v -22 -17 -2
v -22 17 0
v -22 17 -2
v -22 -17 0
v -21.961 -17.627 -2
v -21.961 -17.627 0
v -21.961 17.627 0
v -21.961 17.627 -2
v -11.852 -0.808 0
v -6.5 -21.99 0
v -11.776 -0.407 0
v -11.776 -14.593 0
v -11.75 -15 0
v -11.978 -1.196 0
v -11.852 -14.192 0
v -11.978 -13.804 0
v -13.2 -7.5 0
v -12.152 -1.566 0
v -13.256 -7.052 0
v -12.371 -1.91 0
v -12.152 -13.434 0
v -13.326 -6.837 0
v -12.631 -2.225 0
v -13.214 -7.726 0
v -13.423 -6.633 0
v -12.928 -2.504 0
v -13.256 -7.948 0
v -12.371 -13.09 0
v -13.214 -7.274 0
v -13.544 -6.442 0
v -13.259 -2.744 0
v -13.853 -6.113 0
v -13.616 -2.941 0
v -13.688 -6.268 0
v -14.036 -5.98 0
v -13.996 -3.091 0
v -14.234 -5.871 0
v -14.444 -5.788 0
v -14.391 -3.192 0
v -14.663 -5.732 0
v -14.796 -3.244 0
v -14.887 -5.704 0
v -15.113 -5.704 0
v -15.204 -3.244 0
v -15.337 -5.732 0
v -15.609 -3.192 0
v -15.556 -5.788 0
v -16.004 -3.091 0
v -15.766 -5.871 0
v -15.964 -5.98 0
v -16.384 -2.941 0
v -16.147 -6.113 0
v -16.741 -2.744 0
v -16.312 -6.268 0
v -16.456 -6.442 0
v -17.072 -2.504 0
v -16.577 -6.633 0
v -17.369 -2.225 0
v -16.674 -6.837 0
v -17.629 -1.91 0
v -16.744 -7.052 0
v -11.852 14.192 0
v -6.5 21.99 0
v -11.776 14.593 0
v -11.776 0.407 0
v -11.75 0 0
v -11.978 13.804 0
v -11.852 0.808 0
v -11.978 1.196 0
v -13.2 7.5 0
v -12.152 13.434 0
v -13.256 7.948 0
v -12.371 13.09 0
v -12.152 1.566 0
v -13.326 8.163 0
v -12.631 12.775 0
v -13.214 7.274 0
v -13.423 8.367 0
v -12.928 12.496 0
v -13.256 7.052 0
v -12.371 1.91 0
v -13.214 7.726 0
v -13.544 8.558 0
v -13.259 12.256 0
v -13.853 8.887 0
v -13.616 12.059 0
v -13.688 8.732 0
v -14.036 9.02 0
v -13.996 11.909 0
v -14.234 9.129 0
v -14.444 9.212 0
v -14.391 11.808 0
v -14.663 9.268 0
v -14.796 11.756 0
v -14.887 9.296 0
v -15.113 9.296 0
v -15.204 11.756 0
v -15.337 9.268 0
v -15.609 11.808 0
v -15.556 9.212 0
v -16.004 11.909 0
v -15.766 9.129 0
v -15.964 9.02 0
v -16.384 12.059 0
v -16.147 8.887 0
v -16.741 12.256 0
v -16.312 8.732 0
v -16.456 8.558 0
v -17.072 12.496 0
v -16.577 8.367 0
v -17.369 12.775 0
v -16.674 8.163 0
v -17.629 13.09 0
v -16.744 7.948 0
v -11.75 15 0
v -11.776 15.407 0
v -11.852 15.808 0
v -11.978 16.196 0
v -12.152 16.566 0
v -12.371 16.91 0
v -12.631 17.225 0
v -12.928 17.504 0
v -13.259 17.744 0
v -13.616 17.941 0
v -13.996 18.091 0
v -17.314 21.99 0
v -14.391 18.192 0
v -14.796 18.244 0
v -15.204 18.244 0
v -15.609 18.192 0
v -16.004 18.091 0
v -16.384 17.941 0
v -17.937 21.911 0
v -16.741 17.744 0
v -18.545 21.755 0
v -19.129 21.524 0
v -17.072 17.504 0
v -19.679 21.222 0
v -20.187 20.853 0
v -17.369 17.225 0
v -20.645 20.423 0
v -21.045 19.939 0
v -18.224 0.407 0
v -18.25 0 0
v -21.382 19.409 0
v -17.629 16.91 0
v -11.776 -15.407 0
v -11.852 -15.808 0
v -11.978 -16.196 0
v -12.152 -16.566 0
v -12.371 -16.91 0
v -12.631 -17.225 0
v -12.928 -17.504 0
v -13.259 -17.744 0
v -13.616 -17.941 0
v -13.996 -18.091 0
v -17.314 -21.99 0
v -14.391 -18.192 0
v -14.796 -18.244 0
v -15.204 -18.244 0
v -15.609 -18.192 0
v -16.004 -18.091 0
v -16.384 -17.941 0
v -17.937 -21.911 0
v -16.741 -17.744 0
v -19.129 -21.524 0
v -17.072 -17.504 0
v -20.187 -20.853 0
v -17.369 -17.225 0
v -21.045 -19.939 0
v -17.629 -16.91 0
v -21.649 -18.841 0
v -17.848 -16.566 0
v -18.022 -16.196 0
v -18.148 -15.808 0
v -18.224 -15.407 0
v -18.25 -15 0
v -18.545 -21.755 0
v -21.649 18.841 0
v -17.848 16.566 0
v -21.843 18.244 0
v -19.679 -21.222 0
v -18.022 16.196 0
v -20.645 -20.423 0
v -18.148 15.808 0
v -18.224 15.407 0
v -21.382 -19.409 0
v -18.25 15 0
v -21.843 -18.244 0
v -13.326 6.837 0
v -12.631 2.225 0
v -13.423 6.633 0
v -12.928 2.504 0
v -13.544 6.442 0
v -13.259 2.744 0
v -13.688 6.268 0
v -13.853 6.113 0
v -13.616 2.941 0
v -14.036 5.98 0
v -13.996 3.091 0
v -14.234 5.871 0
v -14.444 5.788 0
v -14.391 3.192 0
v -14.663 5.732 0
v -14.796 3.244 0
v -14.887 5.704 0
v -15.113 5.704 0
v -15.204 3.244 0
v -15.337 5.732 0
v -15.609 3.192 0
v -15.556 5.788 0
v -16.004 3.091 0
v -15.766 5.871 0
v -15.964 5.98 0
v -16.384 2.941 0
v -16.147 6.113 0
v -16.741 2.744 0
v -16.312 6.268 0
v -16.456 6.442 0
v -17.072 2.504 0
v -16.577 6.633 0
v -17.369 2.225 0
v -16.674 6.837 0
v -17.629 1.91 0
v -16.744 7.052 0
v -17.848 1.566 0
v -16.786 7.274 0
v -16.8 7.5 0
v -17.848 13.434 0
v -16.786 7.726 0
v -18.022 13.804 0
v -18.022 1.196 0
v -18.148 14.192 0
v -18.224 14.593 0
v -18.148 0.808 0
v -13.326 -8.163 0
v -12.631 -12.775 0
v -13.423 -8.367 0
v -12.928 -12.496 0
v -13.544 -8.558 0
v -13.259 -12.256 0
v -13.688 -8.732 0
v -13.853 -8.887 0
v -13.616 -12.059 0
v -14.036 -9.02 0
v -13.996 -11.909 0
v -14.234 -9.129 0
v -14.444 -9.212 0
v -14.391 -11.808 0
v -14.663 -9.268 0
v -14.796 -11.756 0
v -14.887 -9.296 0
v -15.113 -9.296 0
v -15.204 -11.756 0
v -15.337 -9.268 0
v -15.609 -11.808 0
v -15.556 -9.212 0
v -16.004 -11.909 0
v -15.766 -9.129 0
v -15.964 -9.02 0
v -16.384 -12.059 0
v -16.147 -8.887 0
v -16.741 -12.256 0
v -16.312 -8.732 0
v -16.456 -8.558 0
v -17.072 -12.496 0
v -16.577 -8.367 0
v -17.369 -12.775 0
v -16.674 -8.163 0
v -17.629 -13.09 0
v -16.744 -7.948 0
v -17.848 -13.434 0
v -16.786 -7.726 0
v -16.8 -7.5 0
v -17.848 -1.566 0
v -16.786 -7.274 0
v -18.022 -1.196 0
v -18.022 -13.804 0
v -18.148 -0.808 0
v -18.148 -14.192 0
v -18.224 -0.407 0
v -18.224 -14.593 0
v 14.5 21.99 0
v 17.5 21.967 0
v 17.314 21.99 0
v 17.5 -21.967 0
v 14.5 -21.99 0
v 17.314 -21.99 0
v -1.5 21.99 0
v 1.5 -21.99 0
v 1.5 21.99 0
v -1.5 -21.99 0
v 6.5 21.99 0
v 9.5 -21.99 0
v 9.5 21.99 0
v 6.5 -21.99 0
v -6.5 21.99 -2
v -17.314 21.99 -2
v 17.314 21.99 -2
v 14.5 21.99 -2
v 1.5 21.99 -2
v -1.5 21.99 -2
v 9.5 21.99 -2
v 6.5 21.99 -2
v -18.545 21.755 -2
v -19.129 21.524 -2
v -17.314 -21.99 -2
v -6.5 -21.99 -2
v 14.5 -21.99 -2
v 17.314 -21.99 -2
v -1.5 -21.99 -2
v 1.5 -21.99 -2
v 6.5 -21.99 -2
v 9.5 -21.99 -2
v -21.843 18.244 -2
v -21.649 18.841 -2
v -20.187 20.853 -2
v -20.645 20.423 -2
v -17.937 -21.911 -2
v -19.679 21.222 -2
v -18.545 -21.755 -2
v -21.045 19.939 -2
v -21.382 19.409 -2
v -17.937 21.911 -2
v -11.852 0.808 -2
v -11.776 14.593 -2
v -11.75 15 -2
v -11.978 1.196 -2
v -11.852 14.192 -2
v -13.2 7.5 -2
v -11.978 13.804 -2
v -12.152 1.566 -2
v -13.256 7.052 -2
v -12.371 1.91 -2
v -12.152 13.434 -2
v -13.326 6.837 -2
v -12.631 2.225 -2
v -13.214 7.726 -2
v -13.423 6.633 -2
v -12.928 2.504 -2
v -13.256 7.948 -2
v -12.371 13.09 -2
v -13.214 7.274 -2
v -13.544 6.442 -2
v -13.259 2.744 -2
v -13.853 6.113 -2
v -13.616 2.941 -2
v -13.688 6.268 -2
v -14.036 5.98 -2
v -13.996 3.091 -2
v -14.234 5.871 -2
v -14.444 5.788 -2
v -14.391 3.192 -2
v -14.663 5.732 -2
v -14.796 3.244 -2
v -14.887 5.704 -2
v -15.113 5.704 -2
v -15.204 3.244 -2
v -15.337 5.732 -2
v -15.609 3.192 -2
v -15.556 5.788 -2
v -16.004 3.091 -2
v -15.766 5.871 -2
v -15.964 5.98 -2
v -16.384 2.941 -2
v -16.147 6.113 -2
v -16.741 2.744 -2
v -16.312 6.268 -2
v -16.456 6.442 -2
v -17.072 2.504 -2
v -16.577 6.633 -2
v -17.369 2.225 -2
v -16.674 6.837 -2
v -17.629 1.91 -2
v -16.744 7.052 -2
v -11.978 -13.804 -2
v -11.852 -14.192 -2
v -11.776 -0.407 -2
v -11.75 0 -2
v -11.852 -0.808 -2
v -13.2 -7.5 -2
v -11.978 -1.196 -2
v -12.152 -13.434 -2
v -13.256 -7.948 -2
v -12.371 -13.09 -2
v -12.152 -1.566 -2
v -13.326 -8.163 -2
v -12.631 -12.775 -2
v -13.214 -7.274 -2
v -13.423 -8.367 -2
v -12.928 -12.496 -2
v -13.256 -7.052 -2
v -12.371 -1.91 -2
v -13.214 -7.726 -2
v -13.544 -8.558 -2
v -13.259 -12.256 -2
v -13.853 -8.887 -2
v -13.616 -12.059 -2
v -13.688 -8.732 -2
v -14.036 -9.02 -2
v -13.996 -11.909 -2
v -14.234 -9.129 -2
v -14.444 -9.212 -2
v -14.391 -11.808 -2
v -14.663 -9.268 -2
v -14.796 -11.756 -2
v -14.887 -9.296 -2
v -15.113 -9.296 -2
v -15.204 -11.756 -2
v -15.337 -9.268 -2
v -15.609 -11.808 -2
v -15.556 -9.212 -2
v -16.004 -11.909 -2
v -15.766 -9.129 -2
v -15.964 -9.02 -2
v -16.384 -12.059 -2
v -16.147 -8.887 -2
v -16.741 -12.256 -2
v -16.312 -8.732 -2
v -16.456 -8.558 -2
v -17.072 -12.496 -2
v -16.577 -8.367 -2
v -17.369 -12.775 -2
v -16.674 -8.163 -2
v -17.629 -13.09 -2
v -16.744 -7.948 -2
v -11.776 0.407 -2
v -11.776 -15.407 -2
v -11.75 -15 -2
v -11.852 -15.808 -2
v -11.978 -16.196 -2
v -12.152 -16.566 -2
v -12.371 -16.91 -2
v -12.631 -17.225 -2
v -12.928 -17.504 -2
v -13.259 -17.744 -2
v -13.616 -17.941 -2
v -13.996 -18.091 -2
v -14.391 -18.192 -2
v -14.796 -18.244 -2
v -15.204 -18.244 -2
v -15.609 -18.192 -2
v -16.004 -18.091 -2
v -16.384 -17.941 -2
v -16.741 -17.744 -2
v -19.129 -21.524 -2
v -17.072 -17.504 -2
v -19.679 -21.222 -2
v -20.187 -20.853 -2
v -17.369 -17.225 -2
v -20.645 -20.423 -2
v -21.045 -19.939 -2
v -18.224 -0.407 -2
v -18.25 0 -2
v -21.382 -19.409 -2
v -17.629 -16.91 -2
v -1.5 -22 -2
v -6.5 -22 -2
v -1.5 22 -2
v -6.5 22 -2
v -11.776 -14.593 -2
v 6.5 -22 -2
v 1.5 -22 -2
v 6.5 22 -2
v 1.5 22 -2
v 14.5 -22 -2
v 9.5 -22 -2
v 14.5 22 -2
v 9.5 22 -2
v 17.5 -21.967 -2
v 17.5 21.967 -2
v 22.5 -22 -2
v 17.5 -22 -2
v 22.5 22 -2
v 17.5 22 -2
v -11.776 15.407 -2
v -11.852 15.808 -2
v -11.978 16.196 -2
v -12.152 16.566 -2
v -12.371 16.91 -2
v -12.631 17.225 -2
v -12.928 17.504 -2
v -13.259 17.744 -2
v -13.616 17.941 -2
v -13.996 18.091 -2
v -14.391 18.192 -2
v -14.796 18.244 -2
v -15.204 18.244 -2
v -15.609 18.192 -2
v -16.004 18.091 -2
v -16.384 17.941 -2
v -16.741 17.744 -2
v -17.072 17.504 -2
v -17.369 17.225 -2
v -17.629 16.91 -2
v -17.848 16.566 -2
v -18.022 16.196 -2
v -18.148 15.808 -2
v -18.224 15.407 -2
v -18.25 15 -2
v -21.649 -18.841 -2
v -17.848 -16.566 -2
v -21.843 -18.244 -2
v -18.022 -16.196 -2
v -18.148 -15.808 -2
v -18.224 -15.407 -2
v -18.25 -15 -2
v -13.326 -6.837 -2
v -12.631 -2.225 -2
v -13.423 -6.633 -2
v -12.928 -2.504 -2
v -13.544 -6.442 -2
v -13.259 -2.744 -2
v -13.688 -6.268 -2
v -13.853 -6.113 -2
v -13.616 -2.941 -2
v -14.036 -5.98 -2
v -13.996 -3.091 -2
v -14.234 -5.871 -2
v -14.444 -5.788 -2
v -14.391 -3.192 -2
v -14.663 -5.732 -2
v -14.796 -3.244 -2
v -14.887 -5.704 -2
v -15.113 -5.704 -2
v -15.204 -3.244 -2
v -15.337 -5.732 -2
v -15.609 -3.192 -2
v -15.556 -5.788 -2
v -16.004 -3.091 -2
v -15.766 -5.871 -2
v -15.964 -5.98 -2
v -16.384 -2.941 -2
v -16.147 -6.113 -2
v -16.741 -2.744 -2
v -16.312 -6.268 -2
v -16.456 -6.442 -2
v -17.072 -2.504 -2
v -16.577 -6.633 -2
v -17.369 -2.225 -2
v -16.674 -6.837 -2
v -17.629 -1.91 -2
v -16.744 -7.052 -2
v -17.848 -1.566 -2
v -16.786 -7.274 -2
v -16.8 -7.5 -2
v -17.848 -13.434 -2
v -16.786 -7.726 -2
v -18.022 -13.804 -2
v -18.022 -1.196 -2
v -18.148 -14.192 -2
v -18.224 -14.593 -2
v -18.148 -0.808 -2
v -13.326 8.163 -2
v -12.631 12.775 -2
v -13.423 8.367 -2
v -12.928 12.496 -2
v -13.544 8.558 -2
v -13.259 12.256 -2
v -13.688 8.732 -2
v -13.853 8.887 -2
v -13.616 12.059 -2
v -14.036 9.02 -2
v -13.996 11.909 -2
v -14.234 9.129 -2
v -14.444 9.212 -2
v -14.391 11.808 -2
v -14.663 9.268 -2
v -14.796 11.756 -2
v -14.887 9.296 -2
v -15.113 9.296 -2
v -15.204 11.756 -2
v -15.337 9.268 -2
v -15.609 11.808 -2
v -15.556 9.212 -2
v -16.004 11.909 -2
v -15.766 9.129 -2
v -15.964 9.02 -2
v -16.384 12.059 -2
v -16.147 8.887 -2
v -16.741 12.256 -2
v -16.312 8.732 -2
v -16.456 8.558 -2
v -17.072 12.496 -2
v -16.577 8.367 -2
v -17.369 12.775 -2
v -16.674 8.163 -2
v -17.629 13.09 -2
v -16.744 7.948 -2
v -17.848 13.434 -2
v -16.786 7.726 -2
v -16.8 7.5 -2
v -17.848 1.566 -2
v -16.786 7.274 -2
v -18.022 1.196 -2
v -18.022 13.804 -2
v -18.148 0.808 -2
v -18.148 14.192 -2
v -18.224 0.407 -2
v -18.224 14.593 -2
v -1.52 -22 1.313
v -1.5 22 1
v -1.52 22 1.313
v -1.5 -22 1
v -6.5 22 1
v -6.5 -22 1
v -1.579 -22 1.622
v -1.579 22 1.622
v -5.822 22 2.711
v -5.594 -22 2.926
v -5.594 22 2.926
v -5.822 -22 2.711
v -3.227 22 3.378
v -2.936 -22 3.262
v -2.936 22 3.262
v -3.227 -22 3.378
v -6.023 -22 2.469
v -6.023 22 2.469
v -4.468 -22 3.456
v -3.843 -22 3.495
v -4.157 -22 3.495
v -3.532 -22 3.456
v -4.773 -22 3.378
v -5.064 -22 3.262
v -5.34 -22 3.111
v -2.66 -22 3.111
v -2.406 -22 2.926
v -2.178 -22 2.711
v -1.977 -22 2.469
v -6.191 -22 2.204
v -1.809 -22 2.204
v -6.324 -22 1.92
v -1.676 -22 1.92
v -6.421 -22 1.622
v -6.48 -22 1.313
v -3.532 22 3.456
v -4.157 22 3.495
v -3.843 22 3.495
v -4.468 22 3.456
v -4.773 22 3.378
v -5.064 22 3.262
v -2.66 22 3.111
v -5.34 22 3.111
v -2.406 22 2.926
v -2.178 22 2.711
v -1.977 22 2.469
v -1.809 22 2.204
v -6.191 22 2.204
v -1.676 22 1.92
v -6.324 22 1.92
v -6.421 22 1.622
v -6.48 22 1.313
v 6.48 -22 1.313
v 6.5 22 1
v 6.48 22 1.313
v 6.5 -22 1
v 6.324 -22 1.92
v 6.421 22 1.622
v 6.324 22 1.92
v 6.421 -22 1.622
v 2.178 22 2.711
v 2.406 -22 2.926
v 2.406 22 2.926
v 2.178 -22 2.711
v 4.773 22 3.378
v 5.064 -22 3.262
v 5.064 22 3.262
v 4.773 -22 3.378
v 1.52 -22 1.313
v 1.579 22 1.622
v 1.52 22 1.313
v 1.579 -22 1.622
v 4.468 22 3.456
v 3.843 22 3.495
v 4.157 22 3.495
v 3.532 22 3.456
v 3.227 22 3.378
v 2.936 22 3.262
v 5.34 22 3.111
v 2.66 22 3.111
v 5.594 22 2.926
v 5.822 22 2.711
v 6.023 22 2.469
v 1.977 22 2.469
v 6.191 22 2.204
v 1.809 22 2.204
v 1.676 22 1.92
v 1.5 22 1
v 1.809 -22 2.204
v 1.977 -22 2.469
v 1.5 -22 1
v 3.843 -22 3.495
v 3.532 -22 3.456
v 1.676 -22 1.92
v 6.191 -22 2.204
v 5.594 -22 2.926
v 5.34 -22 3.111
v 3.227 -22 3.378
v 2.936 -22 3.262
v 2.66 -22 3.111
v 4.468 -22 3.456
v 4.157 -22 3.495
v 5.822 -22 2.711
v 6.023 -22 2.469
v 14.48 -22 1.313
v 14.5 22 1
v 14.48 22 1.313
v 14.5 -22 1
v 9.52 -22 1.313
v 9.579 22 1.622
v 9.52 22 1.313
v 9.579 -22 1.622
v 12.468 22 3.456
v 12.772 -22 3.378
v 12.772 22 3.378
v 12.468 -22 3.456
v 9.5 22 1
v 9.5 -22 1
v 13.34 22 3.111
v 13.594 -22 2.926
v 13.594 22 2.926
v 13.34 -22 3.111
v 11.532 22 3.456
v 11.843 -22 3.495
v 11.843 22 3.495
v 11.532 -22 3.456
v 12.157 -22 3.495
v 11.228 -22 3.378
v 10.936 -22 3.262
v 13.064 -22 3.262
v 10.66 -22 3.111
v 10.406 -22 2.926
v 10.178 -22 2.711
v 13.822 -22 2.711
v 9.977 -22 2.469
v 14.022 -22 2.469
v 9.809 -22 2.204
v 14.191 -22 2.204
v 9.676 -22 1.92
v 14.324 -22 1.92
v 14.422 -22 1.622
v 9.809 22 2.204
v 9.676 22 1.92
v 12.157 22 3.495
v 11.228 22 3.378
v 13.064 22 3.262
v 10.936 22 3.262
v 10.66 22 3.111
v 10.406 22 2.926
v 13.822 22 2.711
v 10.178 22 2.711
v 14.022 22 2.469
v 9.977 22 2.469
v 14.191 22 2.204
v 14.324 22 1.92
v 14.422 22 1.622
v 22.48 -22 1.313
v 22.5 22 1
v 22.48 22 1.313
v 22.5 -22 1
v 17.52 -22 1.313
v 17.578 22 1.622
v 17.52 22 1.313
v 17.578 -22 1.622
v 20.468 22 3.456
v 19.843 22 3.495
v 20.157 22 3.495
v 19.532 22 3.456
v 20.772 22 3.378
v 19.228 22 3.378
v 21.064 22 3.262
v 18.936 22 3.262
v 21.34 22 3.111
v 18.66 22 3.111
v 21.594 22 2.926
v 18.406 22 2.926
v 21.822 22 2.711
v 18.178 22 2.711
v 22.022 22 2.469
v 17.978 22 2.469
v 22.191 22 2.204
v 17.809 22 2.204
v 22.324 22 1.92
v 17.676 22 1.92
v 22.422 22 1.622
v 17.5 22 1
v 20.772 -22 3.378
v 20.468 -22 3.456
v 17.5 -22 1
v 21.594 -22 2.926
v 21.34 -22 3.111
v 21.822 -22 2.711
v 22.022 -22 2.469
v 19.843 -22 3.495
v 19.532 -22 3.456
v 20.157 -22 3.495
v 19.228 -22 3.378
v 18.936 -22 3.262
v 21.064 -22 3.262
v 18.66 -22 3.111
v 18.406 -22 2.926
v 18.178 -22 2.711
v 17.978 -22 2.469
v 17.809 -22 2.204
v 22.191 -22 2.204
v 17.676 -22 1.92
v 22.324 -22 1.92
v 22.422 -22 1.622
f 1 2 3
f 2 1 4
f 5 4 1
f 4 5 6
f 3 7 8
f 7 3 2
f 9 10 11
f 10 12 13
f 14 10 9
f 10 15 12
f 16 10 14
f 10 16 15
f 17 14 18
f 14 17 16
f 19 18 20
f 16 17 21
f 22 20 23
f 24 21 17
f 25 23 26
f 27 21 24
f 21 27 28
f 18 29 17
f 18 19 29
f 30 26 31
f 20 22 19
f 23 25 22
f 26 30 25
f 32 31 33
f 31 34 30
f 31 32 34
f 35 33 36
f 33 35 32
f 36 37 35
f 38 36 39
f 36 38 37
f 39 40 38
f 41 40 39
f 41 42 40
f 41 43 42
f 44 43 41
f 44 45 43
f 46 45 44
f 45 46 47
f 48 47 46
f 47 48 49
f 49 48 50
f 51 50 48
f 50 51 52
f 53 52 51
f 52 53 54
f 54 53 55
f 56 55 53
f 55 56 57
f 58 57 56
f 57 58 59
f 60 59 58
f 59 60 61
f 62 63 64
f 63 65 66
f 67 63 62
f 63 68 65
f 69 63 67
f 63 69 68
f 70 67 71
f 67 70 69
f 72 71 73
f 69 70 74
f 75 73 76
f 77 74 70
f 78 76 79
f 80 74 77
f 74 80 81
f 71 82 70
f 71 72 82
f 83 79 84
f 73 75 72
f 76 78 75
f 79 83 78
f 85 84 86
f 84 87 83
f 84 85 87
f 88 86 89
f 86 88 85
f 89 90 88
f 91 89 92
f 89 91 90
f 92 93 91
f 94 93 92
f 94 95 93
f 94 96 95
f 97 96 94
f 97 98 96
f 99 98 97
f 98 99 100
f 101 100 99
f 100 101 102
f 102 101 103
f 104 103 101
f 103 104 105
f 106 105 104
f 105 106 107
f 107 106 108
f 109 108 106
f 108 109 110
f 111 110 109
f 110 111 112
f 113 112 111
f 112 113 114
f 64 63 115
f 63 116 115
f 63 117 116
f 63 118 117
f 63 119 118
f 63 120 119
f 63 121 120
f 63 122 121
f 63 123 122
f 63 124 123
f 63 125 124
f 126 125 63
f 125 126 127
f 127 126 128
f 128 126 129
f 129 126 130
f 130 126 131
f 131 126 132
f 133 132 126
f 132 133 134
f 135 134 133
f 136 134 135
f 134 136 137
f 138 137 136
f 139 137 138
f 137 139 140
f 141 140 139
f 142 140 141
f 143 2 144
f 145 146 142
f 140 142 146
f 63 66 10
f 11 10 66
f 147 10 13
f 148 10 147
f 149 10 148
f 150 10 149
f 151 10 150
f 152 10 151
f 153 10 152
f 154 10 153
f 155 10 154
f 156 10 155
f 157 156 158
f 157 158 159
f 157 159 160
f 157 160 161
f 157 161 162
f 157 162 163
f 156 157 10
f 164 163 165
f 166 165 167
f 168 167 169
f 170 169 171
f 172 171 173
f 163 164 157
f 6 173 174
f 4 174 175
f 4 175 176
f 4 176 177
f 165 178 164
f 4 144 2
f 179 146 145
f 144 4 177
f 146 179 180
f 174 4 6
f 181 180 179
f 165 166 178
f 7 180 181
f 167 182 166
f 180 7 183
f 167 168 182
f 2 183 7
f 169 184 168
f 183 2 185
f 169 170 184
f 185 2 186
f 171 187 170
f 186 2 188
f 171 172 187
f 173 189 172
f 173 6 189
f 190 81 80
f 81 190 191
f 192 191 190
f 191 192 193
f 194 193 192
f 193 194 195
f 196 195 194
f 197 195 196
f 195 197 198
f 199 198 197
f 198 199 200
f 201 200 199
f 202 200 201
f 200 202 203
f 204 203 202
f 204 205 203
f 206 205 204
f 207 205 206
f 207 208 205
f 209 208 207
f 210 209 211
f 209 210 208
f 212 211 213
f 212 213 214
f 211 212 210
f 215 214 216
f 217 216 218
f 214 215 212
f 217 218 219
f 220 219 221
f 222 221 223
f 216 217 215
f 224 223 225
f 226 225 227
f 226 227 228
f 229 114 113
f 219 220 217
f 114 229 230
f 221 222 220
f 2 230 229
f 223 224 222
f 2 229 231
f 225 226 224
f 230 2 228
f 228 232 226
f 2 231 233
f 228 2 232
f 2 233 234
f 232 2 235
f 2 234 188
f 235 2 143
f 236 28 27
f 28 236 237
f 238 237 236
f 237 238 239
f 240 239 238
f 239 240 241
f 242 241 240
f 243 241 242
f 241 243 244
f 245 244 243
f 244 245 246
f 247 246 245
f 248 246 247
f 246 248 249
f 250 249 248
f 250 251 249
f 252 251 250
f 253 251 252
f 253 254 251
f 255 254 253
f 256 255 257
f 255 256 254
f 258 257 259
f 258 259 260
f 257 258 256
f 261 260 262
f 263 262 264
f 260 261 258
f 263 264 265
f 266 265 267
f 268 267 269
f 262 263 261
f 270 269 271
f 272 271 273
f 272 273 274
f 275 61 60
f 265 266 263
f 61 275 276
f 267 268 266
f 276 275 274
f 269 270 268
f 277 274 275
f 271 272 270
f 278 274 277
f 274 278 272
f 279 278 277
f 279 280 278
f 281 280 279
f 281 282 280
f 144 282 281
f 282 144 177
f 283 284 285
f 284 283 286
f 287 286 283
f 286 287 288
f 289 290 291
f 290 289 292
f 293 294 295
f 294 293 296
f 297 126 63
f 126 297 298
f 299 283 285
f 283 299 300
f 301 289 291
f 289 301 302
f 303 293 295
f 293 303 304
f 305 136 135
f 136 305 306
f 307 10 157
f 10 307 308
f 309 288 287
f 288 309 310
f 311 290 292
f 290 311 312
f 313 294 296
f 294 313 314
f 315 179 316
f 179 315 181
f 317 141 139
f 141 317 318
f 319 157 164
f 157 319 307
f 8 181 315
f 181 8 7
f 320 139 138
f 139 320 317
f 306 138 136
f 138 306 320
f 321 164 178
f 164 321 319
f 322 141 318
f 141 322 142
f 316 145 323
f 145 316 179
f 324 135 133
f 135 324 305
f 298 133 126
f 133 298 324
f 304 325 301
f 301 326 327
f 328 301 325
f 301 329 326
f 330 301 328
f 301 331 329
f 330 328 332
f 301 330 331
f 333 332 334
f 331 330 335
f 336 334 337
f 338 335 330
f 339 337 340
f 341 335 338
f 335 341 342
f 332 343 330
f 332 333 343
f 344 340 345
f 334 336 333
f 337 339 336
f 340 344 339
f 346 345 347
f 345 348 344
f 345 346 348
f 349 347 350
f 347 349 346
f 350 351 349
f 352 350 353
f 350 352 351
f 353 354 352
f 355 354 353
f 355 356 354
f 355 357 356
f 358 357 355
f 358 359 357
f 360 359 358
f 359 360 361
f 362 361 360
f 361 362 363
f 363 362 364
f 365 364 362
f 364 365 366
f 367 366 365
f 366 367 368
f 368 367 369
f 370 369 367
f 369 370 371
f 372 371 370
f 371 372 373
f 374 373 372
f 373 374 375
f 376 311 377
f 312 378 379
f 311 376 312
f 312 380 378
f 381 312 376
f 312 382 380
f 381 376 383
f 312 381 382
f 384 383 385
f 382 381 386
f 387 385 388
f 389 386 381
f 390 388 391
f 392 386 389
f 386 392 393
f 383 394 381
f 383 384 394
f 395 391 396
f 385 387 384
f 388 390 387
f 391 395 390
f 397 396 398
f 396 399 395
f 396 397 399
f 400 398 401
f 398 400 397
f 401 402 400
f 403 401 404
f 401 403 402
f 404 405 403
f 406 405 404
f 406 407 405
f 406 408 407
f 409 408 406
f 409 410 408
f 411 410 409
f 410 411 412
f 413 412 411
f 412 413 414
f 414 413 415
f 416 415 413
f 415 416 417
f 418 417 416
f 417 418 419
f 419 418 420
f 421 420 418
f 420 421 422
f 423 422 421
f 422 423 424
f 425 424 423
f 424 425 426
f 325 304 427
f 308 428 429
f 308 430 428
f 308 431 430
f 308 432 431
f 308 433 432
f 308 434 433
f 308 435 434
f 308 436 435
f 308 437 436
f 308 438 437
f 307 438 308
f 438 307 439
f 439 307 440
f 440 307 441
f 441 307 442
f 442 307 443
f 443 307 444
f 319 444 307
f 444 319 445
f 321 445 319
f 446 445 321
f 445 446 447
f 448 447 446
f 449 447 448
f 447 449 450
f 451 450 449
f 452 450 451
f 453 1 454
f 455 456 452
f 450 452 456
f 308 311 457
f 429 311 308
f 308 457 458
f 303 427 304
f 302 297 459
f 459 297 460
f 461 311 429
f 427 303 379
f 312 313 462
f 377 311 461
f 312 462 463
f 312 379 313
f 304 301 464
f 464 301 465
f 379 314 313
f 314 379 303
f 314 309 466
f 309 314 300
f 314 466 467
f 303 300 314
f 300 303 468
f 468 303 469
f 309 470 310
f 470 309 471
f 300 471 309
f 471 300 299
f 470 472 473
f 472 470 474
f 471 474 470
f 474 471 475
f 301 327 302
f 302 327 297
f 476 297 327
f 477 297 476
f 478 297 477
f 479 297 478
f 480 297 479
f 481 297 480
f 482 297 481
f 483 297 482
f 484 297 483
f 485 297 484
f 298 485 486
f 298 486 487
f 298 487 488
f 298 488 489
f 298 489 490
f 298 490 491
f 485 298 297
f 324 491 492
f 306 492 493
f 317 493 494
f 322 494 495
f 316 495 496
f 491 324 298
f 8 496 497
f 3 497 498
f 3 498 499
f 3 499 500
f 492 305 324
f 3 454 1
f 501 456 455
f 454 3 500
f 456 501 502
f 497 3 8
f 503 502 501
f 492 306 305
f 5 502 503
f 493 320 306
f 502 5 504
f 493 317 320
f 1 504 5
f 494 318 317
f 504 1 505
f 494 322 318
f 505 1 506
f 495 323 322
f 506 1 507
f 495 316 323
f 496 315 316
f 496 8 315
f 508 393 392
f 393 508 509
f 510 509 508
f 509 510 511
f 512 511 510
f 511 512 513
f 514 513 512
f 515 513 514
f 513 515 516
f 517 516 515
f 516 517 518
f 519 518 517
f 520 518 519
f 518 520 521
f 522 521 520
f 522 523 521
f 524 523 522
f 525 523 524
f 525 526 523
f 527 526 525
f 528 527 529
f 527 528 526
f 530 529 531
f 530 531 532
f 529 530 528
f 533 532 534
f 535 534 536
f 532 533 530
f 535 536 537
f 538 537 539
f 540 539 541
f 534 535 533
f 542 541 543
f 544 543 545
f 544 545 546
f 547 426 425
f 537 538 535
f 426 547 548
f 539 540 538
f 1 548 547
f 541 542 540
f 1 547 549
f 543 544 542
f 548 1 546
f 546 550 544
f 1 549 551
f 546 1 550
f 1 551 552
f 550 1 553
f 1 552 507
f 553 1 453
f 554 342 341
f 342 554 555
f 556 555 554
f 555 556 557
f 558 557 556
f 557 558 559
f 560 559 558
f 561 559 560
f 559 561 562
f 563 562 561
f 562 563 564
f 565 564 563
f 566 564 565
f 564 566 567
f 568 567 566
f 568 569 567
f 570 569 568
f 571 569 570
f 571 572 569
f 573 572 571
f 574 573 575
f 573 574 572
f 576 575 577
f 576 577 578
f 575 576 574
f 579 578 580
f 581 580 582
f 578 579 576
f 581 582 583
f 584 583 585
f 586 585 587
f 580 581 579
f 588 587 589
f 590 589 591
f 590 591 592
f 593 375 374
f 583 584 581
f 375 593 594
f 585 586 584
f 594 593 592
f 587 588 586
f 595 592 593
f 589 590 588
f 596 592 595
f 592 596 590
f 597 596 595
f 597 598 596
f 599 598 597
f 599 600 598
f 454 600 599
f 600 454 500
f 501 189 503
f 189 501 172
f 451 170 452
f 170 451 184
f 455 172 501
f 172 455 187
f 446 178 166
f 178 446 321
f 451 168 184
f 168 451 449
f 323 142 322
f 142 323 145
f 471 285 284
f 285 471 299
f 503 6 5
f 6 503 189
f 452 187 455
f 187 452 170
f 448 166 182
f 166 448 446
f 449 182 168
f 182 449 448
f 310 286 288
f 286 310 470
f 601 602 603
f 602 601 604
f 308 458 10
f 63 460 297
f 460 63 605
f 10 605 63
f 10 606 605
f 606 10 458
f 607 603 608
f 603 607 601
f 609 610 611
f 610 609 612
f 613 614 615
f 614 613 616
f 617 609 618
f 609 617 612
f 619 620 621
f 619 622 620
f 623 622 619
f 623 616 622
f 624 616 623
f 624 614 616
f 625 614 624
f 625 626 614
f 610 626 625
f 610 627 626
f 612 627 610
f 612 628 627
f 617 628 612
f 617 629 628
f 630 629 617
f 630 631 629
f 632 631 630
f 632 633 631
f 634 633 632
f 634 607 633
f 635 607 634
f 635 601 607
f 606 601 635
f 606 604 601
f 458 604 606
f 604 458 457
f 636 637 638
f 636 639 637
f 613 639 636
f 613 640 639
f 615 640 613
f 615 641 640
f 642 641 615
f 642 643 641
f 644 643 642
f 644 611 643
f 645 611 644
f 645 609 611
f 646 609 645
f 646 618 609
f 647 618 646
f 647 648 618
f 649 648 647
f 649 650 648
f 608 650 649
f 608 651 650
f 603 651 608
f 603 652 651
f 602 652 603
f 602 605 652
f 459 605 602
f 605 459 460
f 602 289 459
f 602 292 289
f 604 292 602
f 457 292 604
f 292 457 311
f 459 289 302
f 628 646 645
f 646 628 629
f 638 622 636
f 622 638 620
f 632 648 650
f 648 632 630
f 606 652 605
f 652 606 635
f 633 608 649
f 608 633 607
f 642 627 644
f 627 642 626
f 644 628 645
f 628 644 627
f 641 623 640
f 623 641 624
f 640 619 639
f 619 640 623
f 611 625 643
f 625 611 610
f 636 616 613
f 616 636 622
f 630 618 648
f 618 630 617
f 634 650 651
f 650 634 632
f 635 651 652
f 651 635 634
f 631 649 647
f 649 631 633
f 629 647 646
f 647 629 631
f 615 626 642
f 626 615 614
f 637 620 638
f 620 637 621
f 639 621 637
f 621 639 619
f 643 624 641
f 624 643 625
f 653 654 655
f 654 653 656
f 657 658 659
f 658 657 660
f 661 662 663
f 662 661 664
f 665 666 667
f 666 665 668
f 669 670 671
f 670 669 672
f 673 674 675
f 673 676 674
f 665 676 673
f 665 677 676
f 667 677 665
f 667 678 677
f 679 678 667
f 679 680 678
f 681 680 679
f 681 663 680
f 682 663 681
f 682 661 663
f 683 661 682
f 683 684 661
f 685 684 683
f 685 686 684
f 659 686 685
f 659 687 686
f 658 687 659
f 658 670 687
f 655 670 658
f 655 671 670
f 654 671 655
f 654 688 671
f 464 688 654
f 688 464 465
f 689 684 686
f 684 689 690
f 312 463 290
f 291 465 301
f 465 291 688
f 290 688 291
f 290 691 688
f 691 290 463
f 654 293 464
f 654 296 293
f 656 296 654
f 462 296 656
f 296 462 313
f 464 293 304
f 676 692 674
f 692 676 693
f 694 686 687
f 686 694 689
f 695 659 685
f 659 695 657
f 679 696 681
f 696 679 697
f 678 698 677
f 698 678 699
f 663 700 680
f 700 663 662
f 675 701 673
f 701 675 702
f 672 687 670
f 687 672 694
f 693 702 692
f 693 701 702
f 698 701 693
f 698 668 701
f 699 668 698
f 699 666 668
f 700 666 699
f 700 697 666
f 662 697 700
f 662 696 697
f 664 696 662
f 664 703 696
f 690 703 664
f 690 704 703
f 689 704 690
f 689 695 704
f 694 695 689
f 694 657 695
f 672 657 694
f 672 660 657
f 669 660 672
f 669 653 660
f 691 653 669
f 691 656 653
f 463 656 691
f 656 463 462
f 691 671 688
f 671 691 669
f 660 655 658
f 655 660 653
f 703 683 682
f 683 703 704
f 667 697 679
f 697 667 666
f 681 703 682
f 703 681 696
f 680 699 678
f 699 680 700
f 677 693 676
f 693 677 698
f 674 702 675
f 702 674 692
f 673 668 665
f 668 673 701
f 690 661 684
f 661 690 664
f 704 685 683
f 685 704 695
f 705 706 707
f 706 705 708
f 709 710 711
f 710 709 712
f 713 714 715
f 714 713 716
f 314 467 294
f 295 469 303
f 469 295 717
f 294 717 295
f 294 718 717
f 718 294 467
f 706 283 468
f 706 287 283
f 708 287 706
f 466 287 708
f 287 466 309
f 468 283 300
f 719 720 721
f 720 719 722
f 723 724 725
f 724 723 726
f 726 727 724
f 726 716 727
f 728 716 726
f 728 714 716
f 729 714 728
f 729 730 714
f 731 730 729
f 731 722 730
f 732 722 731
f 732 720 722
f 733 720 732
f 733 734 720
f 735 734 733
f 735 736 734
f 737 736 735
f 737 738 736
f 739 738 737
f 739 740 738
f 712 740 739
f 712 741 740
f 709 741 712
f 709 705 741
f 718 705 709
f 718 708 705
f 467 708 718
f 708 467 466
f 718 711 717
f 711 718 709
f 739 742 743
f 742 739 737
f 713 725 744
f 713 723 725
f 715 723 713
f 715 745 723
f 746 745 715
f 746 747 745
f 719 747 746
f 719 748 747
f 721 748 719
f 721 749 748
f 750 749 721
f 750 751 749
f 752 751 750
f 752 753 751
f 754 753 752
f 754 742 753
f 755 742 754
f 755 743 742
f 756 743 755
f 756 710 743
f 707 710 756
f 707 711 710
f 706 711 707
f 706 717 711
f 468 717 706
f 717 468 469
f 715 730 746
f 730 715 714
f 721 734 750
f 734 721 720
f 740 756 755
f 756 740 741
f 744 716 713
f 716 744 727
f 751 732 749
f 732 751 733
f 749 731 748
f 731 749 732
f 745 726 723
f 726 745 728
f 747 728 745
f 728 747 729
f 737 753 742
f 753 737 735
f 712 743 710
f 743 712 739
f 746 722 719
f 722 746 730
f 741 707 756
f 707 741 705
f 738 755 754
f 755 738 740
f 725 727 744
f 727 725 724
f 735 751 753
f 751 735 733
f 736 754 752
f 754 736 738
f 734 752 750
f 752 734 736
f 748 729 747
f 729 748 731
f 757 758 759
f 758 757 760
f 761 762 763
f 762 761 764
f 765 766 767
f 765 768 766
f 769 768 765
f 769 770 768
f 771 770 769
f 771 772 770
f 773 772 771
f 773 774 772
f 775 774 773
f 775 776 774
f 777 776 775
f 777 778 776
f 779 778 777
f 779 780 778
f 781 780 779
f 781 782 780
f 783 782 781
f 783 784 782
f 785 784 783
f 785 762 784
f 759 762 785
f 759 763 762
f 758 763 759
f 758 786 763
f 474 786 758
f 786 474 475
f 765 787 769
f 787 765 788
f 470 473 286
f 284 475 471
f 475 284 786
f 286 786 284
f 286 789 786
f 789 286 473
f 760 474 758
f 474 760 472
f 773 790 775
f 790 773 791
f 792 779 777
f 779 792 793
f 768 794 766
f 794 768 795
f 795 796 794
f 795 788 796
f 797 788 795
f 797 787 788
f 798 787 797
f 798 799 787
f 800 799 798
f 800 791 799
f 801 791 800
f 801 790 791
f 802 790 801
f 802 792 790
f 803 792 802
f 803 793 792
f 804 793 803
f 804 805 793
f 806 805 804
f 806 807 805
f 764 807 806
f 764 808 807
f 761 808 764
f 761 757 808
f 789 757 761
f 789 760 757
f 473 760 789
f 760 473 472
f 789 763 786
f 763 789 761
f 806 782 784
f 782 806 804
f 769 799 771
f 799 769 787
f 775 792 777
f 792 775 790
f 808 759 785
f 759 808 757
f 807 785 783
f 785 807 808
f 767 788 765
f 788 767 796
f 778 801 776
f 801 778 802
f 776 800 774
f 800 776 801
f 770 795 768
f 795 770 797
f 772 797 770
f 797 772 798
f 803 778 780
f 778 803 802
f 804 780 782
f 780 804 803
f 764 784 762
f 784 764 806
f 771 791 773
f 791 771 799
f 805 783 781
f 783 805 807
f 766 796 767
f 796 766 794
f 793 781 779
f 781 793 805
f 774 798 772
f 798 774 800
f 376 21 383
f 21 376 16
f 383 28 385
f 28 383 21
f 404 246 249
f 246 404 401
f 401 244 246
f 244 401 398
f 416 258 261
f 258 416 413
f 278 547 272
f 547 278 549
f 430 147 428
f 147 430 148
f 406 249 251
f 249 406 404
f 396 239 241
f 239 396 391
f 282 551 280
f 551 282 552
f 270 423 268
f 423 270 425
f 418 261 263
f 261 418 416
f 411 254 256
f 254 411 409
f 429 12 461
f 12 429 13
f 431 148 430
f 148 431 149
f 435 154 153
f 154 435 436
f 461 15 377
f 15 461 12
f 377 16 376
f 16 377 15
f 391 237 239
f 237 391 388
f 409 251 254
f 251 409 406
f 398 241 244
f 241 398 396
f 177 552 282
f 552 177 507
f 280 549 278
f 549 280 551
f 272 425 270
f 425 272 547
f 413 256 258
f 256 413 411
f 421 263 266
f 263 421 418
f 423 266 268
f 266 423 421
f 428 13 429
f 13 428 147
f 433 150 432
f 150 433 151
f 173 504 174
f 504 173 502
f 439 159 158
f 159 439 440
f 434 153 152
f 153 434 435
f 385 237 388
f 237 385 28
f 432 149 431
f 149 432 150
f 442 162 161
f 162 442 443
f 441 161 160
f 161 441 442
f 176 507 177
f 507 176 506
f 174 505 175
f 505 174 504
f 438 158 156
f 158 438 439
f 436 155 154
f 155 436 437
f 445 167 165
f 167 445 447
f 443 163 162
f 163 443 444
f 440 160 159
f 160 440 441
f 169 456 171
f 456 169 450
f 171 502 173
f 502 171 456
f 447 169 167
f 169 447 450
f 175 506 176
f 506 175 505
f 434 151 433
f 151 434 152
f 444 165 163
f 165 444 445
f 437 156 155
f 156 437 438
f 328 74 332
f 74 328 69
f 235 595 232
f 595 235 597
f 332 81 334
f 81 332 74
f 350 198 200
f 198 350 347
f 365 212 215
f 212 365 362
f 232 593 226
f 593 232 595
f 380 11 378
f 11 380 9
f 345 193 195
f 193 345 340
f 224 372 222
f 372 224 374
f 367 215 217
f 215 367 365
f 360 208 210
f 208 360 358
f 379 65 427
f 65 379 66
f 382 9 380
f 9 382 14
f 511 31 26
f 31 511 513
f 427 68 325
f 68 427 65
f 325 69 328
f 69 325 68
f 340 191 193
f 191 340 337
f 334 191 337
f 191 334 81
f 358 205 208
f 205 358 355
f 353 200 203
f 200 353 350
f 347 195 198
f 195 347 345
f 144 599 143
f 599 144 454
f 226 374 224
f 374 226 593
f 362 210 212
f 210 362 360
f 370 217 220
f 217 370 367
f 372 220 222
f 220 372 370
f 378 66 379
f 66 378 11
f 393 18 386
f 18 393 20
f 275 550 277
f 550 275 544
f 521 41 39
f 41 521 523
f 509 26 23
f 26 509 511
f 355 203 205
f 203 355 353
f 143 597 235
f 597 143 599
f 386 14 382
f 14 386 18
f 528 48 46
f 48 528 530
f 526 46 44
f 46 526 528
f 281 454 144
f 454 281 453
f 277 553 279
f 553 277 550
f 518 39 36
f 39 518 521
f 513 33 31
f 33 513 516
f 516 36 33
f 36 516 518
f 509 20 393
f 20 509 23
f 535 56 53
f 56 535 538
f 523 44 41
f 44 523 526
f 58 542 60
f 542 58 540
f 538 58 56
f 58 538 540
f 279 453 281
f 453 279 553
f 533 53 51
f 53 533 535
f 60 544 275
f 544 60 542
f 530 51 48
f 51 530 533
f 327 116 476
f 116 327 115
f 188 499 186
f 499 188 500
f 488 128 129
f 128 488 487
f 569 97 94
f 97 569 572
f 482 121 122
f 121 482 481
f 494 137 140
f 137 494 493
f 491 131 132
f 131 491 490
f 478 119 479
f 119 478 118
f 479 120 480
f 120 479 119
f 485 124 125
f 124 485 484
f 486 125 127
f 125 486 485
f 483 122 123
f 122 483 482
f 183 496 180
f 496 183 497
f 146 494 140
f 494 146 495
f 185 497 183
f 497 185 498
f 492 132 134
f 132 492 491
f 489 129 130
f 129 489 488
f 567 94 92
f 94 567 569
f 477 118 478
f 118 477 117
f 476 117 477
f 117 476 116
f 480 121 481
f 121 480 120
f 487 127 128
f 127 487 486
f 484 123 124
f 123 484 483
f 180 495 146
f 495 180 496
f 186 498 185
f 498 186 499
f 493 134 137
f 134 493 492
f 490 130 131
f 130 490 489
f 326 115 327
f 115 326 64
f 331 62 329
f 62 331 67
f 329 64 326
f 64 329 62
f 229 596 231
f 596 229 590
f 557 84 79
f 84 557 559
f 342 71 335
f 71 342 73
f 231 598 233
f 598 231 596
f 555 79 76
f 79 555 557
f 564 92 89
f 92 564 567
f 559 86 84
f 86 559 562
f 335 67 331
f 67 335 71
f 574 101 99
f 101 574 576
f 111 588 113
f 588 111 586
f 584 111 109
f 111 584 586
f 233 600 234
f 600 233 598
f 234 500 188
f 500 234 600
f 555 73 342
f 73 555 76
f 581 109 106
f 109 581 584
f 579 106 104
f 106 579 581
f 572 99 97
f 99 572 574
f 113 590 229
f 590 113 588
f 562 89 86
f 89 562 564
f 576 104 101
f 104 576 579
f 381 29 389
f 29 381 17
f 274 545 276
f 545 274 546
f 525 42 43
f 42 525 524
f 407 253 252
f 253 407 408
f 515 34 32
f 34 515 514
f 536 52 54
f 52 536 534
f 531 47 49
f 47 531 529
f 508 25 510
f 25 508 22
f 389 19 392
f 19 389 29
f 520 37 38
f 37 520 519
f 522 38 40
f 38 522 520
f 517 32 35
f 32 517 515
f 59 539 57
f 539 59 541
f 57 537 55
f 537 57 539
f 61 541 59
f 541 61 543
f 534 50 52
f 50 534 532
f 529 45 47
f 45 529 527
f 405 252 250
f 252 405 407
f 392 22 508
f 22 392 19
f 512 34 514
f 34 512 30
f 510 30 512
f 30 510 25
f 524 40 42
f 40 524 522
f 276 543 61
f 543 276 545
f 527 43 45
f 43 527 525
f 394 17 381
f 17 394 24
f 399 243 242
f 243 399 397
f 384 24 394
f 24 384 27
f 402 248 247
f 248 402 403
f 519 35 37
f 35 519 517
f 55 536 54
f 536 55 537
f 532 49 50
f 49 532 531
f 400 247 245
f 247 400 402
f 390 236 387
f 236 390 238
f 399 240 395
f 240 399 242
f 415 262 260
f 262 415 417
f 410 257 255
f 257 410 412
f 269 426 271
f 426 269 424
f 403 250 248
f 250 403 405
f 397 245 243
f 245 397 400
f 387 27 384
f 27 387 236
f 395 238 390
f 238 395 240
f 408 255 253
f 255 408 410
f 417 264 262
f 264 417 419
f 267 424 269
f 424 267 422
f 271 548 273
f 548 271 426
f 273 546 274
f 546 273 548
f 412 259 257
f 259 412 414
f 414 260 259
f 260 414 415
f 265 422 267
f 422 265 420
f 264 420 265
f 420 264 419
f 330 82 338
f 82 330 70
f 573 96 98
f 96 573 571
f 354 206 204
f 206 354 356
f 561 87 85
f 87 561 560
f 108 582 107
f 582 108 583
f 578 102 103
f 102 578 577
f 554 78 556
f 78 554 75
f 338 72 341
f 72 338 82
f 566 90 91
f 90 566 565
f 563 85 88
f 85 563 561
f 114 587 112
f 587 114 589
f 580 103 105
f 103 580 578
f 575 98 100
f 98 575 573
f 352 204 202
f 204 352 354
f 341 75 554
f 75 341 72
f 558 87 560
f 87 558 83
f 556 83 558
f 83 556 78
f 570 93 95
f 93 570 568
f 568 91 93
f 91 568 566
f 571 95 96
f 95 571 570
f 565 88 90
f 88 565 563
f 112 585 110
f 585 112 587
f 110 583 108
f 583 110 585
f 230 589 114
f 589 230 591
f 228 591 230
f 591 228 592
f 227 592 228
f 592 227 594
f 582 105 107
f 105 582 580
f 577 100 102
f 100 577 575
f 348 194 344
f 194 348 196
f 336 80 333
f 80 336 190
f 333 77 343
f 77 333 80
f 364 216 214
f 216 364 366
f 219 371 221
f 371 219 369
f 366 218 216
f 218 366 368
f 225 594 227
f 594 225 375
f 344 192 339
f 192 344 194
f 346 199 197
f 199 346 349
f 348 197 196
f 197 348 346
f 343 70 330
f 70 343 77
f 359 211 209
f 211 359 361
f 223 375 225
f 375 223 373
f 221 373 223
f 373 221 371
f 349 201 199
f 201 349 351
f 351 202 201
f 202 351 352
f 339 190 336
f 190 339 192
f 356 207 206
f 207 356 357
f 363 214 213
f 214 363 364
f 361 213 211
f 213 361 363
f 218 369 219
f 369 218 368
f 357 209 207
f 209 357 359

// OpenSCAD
$fn = 50;


difference() {
	union() {
		translate(v = [0, 0, -2]) {
			hull() {
				translate(v = [-17.0000000000, 17.0000000000, 0]) {
					cylinder(h = 2, r = 5);
				}
				translate(v = [17.0000000000, 17.0000000000, 0]) {
					cylinder(h = 2, r = 5);
				}
				translate(v = [-17.0000000000, -17.0000000000, 0]) {
					cylinder(h = 2, r = 5);
				}
				translate(v = [17.0000000000, -17.0000000000, 0]) {
					cylinder(h = 2, r = 5);
				}
			}
		}
		translate(v = [-4.0000000000, 22.0000000000, -1.5000000000]) {
			rotate(a = [90, 0, 0]) {
				hull() {
					translate(v = [-0.0000000000, 2.5000000000, 0]) {
						cylinder(h = 44, r = 2.5000000000);
					}
					translate(v = [0.0000000000, 2.5000000000, 0]) {
						cylinder(h = 44, r = 2.5000000000);
					}
					translate(v = [-0.0000000000, -2.5000000000, 0]) {
						cylinder(h = 44, r = 2.5000000000);
					}
					translate(v = [0.0000000000, -2.5000000000, 0]) {
						cylinder(h = 44, r = 2.5000000000);
					}
				}
			}
		}
		translate(v = [4.0000000000, 22.0000000000, -1.5000000000]) {
			rotate(a = [90, 0, 0]) {
				hull() {
					translate(v = [-0.0000000000, 2.5000000000, 0]) {
						cylinder(h = 44, r = 2.5000000000);
					}
					translate(v = [0.0000000000, 2.5000000000, 0]) {
						cylinder(h = 44, r = 2.5000000000);
					}
					translate(v = [-0.0000000000, -2.5000000000, 0]) {
						cylinder(h = 44, r = 2.5000000000);
					}
					translate(v = [0.0000000000, -2.5000000000, 0]) {
						cylinder(h = 44, r = 2.5000000000);
					}
				}
			}
		}
		translate(v = [12.0000000000, 22.0000000000, -1.5000000000]) {
			rotate(a = [90, 0, 0]) {
				hull() {
					translate(v = [-0.0000000000, 2.5000000000, 0]) {
						cylinder(h = 44, r = 2.5000000000);
					}
					translate(v = [0.0000000000, 2.5000000000, 0]) {
						cylinder(h = 44, r = 2.5000000000);
					}
					translate(v = [-0.0000000000, -2.5000000000, 0]) {
						cylinder(h = 44, r = 2.5000000000);
					}
					translate(v = [0.0000000000, -2.5000000000, 0]) {
						cylinder(h = 44, r = 2.5000000000);
					}
				}
			}
		}
		translate(v = [20.0000000000, 22.0000000000, -1.5000000000]) {
			rotate(a = [90, 0, 0]) {
				hull() {
					translate(v = [-0.0000000000, 2.5000000000, 0]) {
						cylinder(h = 44, r = 2.5000000000);
					}
					translate(v = [0.0000000000, 2.5000000000, 0]) {
						cylinder(h = 44, r = 2.5000000000);
					}
					translate(v = [-0.0000000000, -2.5000000000, 0]) {
						cylinder(h = 44, r = 2.5000000000);
					}
					translate(v = [0.0000000000, -2.5000000000, 0]) {
						cylinder(h = 44, r = 2.5000000000);
					}
				}
			}
		}
	}
	union() {
		translate(v = [-250.0000000000, -250.0000000000, -502]) {
			cube(size = [500, 500, 500]);
		}
		translate(v = [-250.0000000000, -250.0000000000, -502]) {
			cube(size = [500, 500, 500]);
		}
		translate(v = [-250.0000000000, -250.0000000000, -502]) {
			cube(size = [500, 500, 500]);
		}
		translate(v = [-15.0000000000, -15.0000000000, -100.0000000000]) {
			cylinder(h = 200, r = 3.2500000000);
		}
		translate(v = [-15.0000000000, 0.0000000000, -100.0000000000]) {
			cylinder(h = 200, r = 3.2500000000);
		}
		translate(v = [-15.0000000000, 15.0000000000, -100.0000000000]) {
			cylinder(h = 200, r = 3.2500000000);
		}
		translate(v = [-15.0000000000, -15.0000000000, -100.0000000000]) {
			cylinder(h = 200, r = 1.8000000000);
		}
		translate(v = [-15.0000000000, -7.5000000000, -100.0000000000]) {
			cylinder(h = 200, r = 1.8000000000);
		}
		translate(v = [-15.0000000000, 0.0000000000, -100.0000000000]) {
			cylinder(h = 200, r = 1.8000000000);
		}
		translate(v = [-15.0000000000, 7.5000000000, -100.0000000000]) {
			cylinder(h = 200, r = 1.8000000000);
		}
		translate(v = [-15.0000000000, 15.0000000000, -100.0000000000]) {
			cylinder(h = 200, r = 1.8000000000);
		}
		translate(v = [-15.0000000000, -15.0000000000, -100.0000000000]) {
			cylinder(h = 200, r = 1.8000000000);
		}
		translate(v = [-15.0000000000, -7.5000000000, -100.0000000000]) {
			cylinder(h = 200, r = 1.8000000000);
		}
		translate(v = [-15.0000000000, 0.0000000000, -100.0000000000]) {
			cylinder(h = 200, r = 1.8000000000);
		}
		translate(v = [-15.0000000000, 7.5000000000, -100.0000000000]) {
			cylinder(h = 200, r = 1.8000000000);
		}
		translate(v = [-15.0000000000, 15.0000000000, -100.0000000000]) {
			cylinder(h = 200, r = 1.8000000000);
		}
		translate(v = [-15.0000000000, -15.0000000000, -100.0000000000]) {
			cylinder(h = 200, r = 1.8000000000);
		}
		translate(v = [-15.0000000000, -7.5000000000, -100.0000000000]) {
			cylinder(h = 200, r = 1.8000000000);
		}
		translate(v = [-15.0000000000, 0.0000000000, -100.0000000000]) {
			cylinder(h = 200, r = 1.8000000000);
		}
		translate(v = [-15.0000000000, 7.5000000000, -100.0000000000]) {
			cylinder(h = 200, r = 1.8000000000);
		}
		translate(v = [-15.0000000000, 15.0000000000, -100.0000000000]) {
			cylinder(h = 200, r = 1.8000000000);
		}
	}
}
